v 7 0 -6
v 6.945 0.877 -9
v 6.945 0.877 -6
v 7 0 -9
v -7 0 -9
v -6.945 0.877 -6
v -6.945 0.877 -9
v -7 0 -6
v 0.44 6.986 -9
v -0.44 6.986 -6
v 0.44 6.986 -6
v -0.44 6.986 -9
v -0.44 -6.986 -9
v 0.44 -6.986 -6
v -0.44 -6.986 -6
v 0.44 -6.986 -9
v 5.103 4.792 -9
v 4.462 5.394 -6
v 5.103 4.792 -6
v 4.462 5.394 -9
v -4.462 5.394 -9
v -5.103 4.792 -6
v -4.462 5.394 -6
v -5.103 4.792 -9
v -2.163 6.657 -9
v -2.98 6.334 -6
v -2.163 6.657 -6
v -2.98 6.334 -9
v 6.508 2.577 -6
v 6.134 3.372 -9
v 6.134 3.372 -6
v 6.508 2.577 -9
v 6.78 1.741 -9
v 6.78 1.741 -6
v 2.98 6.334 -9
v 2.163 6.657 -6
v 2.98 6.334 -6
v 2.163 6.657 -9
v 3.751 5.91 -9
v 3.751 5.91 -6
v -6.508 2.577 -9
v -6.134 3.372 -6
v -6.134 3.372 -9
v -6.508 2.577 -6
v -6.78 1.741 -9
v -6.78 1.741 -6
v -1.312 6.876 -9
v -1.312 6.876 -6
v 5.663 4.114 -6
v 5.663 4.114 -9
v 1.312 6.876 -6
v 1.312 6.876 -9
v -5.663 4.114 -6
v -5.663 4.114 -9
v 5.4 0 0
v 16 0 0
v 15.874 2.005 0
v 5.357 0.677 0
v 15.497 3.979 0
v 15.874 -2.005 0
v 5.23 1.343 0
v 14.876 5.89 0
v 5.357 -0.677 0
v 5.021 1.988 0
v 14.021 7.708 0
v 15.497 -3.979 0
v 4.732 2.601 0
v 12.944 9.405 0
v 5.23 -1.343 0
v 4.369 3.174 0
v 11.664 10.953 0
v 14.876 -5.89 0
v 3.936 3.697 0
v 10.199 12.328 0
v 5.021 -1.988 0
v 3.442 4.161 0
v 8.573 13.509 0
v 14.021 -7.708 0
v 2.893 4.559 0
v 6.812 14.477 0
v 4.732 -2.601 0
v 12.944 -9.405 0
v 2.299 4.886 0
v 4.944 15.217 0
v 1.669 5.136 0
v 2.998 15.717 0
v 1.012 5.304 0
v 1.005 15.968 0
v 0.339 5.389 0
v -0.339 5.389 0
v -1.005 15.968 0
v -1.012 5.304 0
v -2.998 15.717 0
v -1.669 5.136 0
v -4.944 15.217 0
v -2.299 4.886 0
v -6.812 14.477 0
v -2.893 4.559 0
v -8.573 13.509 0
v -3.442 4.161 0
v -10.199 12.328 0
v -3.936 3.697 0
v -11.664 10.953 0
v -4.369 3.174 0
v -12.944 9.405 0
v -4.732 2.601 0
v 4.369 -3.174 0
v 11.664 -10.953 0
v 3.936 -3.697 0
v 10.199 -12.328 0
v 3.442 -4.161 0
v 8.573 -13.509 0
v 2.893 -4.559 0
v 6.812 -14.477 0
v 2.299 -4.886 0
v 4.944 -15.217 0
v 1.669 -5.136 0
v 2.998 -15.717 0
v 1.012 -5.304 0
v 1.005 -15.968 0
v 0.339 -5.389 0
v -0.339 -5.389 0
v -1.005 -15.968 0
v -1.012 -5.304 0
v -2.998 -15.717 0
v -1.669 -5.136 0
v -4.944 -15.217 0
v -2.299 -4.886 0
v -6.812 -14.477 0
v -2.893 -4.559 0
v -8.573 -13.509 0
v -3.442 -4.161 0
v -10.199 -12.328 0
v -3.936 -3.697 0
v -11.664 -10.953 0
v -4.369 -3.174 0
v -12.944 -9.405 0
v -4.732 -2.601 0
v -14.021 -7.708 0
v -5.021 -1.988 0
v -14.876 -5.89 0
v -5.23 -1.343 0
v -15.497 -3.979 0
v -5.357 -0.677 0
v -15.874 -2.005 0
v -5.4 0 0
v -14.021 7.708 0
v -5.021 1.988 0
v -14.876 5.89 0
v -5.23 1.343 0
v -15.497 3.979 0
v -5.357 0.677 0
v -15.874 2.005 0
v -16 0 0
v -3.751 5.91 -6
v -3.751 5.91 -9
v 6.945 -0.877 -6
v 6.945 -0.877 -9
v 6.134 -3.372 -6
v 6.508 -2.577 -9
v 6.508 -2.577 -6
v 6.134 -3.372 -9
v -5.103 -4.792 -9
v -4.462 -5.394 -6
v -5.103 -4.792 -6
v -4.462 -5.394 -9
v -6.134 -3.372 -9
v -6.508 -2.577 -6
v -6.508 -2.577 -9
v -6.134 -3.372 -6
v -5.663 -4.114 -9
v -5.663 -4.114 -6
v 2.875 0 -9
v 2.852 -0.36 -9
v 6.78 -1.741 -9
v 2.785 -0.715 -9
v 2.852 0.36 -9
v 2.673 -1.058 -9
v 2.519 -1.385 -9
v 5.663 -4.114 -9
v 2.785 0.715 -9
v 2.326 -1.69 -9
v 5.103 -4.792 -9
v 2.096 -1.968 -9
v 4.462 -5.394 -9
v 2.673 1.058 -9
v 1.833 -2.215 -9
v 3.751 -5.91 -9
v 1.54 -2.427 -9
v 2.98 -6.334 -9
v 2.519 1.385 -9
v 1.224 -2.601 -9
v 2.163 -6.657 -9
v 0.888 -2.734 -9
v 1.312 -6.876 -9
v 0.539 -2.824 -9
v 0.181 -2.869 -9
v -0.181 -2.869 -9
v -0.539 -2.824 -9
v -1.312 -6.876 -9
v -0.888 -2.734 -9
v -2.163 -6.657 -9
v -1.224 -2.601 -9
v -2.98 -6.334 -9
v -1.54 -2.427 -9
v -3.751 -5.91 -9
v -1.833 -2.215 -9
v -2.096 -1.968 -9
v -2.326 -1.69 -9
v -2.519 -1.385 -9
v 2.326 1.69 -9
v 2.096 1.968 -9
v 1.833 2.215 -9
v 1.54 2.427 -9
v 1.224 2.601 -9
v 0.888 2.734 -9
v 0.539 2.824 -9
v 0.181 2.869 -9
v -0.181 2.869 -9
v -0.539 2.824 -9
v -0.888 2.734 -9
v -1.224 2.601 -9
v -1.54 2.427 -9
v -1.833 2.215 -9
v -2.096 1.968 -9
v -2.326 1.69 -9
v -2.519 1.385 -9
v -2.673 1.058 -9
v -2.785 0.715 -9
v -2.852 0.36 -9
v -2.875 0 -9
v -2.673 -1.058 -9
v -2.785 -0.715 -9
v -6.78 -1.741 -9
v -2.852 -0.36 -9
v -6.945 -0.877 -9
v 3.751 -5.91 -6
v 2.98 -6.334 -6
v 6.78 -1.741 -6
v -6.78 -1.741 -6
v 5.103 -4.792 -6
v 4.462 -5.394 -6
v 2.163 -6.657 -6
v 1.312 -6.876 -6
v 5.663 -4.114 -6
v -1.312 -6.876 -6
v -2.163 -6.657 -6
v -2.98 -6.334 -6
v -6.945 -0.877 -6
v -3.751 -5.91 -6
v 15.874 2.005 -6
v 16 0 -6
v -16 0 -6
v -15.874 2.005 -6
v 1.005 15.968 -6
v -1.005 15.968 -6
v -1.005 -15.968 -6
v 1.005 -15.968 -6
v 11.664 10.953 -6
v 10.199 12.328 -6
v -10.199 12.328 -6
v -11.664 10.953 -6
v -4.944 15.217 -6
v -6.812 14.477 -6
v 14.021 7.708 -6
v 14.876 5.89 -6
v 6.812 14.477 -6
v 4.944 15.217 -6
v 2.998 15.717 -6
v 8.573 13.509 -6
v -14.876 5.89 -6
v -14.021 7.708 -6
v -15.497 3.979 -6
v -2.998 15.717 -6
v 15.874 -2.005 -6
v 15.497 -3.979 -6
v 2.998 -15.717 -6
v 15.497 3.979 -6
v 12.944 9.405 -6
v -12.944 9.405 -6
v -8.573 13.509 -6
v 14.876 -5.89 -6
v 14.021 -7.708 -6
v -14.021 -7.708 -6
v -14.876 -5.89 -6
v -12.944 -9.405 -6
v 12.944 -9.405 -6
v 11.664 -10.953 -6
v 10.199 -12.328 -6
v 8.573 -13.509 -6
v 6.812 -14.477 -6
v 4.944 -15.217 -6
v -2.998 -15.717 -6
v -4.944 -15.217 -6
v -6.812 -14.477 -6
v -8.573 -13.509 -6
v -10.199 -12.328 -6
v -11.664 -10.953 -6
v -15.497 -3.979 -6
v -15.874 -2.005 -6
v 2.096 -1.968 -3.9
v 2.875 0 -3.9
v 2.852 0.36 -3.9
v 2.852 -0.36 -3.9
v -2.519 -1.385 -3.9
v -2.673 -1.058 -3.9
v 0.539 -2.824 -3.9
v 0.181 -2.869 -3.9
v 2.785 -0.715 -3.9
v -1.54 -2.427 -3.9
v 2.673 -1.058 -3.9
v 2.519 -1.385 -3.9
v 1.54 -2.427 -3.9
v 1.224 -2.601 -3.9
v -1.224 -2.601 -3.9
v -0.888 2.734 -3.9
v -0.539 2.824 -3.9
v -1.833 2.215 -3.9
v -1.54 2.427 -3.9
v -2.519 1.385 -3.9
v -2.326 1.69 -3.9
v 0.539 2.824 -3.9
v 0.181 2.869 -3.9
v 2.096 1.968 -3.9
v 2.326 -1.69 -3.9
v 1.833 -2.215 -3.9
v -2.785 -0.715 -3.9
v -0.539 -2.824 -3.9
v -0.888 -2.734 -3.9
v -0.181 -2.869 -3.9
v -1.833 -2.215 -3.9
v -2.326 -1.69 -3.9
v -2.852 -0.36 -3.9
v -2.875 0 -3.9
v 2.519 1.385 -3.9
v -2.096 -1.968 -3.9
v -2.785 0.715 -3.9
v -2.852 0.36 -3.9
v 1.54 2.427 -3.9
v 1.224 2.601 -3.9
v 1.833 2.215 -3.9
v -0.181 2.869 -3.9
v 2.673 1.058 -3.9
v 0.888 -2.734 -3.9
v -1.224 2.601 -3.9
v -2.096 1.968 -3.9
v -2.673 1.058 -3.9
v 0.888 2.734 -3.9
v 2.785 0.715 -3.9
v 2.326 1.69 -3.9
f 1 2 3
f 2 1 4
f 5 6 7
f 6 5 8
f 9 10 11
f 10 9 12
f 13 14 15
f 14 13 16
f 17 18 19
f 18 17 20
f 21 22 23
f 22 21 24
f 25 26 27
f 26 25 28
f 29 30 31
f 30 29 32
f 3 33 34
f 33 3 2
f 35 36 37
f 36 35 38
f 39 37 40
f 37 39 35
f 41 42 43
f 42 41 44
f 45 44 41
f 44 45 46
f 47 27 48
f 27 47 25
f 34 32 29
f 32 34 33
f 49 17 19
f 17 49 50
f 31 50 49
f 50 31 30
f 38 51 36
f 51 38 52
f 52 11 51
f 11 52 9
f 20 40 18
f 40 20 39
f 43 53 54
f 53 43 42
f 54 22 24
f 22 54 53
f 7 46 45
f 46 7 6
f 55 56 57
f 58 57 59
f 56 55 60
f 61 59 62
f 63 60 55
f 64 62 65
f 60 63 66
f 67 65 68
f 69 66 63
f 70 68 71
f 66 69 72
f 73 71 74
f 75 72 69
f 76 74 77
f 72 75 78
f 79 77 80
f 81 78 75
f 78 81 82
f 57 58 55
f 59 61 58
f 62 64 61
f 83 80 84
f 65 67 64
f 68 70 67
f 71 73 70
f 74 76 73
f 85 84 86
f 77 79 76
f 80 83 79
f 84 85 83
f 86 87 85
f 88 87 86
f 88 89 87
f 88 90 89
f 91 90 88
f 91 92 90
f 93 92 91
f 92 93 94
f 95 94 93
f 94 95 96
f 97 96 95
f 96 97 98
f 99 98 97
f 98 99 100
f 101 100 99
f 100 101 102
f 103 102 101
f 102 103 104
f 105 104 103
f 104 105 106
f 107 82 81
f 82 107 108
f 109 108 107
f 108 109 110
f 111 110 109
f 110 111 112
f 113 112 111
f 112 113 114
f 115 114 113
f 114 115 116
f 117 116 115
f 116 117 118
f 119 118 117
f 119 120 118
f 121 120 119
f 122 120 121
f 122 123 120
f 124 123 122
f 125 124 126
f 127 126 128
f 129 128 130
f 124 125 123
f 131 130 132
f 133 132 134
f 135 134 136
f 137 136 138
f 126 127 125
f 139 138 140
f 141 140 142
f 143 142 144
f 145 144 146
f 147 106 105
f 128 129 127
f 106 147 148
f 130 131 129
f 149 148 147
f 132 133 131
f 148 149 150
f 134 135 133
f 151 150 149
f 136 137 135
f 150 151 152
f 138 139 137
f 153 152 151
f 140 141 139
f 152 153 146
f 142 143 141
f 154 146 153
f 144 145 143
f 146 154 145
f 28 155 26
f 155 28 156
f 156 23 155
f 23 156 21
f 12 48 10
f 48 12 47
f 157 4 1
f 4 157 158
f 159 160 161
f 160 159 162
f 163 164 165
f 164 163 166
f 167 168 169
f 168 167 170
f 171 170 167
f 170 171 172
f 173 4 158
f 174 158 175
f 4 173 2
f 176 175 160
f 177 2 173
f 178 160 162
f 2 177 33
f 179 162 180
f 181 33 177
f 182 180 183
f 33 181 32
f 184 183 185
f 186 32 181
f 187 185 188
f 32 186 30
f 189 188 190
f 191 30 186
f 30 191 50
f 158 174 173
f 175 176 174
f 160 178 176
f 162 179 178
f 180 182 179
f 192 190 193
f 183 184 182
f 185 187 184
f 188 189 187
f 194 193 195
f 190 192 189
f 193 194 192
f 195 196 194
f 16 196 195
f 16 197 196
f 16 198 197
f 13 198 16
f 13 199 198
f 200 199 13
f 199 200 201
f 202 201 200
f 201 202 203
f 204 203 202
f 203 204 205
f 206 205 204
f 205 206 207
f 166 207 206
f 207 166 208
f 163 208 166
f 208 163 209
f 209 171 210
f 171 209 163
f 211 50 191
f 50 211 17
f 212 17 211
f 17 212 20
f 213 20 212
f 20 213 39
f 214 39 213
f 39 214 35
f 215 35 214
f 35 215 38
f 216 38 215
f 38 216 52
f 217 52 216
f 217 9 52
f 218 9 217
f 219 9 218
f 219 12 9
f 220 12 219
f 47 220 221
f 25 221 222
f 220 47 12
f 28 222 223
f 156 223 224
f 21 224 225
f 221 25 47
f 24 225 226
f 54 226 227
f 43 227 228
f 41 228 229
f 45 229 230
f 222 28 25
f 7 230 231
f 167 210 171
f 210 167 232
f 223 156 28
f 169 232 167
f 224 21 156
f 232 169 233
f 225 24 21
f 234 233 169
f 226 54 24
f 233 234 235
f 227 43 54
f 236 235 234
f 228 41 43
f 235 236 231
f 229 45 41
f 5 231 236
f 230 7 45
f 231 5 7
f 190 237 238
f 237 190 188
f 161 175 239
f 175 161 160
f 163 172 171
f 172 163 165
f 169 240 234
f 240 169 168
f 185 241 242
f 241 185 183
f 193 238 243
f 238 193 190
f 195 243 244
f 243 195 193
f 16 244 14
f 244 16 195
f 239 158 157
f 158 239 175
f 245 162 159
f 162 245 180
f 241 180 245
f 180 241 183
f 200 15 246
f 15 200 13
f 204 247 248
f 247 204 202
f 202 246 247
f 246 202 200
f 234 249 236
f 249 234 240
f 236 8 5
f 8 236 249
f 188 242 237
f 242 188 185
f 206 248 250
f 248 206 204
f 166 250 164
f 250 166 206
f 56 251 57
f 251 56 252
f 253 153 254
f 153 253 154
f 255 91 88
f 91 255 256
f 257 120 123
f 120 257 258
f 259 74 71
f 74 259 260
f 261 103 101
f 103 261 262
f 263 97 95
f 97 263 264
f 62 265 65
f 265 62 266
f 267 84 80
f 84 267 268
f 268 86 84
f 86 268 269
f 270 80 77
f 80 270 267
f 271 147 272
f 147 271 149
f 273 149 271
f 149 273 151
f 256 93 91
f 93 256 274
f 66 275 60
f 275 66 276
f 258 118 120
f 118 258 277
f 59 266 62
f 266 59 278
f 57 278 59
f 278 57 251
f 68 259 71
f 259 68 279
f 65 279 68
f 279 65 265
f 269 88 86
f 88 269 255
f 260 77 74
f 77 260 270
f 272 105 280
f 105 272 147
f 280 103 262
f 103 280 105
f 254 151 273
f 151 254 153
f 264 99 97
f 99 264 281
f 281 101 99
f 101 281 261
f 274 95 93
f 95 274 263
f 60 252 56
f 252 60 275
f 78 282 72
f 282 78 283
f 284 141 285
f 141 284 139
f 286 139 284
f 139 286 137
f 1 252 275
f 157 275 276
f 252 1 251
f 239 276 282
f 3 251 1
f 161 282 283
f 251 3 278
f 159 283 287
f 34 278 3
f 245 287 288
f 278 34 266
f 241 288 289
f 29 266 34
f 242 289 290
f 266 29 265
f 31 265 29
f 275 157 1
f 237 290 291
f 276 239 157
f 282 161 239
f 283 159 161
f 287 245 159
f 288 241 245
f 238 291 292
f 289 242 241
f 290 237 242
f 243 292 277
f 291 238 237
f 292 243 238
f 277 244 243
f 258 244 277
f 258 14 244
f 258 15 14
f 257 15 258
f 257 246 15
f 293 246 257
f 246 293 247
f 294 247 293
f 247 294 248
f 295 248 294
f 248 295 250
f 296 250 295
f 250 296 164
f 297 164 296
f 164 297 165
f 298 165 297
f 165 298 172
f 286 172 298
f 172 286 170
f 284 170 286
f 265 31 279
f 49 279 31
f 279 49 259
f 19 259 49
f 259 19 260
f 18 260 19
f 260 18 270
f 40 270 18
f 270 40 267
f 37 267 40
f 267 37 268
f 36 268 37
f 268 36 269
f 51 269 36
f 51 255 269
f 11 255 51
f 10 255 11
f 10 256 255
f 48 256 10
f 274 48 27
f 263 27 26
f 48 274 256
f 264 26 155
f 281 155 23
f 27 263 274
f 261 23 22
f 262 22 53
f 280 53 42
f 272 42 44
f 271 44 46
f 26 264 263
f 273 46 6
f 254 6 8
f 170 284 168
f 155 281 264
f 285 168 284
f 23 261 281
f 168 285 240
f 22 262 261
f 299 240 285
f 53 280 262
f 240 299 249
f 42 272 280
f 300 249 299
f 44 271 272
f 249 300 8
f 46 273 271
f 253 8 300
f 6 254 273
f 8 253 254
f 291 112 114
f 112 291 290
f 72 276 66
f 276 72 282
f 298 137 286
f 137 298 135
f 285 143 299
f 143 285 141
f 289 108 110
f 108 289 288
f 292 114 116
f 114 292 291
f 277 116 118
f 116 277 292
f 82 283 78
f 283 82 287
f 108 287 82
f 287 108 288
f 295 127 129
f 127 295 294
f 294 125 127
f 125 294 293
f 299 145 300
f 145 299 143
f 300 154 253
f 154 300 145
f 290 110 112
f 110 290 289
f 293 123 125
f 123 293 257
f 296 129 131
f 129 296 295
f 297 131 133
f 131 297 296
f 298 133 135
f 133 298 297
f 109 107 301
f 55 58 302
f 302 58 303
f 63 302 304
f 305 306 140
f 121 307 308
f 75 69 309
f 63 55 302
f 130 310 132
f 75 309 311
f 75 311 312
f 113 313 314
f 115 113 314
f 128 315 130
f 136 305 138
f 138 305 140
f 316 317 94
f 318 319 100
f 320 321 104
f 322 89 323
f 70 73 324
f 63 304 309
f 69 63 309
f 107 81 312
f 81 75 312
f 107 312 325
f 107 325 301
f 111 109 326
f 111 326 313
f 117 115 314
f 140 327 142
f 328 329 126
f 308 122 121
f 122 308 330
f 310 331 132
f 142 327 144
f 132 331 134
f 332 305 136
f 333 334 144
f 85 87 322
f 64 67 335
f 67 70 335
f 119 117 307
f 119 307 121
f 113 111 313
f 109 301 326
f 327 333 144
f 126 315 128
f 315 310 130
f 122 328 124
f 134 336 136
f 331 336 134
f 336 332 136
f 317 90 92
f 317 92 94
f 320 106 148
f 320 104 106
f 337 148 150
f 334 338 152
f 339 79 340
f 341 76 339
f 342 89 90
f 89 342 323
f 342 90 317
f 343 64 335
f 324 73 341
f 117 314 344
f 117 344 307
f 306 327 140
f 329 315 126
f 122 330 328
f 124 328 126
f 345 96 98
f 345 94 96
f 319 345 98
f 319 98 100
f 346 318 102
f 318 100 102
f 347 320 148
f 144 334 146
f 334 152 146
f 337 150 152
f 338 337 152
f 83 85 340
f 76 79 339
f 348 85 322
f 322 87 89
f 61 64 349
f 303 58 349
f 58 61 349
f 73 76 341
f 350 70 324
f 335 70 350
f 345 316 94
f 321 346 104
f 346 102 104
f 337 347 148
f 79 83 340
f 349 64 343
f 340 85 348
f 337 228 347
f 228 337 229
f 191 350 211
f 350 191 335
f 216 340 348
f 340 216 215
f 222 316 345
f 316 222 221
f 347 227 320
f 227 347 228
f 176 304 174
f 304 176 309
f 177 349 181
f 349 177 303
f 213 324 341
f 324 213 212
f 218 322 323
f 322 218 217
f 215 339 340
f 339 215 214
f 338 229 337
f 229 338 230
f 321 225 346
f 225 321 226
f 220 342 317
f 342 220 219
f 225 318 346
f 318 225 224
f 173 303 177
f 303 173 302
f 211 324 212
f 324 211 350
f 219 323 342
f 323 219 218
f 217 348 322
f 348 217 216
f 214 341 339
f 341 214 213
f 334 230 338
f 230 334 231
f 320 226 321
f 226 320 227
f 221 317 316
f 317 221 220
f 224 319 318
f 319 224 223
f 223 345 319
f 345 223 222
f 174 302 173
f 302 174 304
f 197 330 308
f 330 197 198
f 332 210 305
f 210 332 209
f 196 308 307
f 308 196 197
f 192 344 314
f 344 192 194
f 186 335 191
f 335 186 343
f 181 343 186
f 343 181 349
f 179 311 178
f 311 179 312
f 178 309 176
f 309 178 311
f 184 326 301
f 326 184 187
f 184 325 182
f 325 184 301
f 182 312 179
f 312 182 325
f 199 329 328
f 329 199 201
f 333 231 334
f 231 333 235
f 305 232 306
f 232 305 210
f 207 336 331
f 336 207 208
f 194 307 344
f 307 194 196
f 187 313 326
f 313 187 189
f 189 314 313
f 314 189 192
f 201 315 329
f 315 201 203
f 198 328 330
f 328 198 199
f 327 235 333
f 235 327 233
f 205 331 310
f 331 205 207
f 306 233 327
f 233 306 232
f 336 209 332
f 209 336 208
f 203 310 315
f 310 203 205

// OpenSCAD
$fn = 50;


difference() {
	union() {
		translate(v = [0, 0, -9.0000000000]) {
			cylinder(h = 9, r = 7.0000000000);
		}
		translate(v = [0, 0, -6.0000000000]) {
			cylinder(h = 6, r = 16.0000000000);
		}
	}
	union() {
		translate(v = [0, 0, 0]) {
			rotate(a = [0, 0, 0]) {
				difference() {
					union() {
						#translate(v = [0, 0, -9.0000000000]) {
							cylinder(h = 9, r = 2.6000000000);
						}
						#translate(v = [0, 0, -3.9000000000]) {
							cylinder(h = 3.9000000000, r = 7.0000000000, r1 = 2.8750000000, r2 = 5.4000000000);
						}
						#translate(v = [0, 0, -9.0000000000]) {
							cylinder(h = 9, r = 2.8750000000);
						}
						#translate(v = [0, 0, -9.0000000000]) {
							cylinder(h = 9, r = 2.6000000000);
						}
					}
					union();
				}
			}
		}
	}
}
